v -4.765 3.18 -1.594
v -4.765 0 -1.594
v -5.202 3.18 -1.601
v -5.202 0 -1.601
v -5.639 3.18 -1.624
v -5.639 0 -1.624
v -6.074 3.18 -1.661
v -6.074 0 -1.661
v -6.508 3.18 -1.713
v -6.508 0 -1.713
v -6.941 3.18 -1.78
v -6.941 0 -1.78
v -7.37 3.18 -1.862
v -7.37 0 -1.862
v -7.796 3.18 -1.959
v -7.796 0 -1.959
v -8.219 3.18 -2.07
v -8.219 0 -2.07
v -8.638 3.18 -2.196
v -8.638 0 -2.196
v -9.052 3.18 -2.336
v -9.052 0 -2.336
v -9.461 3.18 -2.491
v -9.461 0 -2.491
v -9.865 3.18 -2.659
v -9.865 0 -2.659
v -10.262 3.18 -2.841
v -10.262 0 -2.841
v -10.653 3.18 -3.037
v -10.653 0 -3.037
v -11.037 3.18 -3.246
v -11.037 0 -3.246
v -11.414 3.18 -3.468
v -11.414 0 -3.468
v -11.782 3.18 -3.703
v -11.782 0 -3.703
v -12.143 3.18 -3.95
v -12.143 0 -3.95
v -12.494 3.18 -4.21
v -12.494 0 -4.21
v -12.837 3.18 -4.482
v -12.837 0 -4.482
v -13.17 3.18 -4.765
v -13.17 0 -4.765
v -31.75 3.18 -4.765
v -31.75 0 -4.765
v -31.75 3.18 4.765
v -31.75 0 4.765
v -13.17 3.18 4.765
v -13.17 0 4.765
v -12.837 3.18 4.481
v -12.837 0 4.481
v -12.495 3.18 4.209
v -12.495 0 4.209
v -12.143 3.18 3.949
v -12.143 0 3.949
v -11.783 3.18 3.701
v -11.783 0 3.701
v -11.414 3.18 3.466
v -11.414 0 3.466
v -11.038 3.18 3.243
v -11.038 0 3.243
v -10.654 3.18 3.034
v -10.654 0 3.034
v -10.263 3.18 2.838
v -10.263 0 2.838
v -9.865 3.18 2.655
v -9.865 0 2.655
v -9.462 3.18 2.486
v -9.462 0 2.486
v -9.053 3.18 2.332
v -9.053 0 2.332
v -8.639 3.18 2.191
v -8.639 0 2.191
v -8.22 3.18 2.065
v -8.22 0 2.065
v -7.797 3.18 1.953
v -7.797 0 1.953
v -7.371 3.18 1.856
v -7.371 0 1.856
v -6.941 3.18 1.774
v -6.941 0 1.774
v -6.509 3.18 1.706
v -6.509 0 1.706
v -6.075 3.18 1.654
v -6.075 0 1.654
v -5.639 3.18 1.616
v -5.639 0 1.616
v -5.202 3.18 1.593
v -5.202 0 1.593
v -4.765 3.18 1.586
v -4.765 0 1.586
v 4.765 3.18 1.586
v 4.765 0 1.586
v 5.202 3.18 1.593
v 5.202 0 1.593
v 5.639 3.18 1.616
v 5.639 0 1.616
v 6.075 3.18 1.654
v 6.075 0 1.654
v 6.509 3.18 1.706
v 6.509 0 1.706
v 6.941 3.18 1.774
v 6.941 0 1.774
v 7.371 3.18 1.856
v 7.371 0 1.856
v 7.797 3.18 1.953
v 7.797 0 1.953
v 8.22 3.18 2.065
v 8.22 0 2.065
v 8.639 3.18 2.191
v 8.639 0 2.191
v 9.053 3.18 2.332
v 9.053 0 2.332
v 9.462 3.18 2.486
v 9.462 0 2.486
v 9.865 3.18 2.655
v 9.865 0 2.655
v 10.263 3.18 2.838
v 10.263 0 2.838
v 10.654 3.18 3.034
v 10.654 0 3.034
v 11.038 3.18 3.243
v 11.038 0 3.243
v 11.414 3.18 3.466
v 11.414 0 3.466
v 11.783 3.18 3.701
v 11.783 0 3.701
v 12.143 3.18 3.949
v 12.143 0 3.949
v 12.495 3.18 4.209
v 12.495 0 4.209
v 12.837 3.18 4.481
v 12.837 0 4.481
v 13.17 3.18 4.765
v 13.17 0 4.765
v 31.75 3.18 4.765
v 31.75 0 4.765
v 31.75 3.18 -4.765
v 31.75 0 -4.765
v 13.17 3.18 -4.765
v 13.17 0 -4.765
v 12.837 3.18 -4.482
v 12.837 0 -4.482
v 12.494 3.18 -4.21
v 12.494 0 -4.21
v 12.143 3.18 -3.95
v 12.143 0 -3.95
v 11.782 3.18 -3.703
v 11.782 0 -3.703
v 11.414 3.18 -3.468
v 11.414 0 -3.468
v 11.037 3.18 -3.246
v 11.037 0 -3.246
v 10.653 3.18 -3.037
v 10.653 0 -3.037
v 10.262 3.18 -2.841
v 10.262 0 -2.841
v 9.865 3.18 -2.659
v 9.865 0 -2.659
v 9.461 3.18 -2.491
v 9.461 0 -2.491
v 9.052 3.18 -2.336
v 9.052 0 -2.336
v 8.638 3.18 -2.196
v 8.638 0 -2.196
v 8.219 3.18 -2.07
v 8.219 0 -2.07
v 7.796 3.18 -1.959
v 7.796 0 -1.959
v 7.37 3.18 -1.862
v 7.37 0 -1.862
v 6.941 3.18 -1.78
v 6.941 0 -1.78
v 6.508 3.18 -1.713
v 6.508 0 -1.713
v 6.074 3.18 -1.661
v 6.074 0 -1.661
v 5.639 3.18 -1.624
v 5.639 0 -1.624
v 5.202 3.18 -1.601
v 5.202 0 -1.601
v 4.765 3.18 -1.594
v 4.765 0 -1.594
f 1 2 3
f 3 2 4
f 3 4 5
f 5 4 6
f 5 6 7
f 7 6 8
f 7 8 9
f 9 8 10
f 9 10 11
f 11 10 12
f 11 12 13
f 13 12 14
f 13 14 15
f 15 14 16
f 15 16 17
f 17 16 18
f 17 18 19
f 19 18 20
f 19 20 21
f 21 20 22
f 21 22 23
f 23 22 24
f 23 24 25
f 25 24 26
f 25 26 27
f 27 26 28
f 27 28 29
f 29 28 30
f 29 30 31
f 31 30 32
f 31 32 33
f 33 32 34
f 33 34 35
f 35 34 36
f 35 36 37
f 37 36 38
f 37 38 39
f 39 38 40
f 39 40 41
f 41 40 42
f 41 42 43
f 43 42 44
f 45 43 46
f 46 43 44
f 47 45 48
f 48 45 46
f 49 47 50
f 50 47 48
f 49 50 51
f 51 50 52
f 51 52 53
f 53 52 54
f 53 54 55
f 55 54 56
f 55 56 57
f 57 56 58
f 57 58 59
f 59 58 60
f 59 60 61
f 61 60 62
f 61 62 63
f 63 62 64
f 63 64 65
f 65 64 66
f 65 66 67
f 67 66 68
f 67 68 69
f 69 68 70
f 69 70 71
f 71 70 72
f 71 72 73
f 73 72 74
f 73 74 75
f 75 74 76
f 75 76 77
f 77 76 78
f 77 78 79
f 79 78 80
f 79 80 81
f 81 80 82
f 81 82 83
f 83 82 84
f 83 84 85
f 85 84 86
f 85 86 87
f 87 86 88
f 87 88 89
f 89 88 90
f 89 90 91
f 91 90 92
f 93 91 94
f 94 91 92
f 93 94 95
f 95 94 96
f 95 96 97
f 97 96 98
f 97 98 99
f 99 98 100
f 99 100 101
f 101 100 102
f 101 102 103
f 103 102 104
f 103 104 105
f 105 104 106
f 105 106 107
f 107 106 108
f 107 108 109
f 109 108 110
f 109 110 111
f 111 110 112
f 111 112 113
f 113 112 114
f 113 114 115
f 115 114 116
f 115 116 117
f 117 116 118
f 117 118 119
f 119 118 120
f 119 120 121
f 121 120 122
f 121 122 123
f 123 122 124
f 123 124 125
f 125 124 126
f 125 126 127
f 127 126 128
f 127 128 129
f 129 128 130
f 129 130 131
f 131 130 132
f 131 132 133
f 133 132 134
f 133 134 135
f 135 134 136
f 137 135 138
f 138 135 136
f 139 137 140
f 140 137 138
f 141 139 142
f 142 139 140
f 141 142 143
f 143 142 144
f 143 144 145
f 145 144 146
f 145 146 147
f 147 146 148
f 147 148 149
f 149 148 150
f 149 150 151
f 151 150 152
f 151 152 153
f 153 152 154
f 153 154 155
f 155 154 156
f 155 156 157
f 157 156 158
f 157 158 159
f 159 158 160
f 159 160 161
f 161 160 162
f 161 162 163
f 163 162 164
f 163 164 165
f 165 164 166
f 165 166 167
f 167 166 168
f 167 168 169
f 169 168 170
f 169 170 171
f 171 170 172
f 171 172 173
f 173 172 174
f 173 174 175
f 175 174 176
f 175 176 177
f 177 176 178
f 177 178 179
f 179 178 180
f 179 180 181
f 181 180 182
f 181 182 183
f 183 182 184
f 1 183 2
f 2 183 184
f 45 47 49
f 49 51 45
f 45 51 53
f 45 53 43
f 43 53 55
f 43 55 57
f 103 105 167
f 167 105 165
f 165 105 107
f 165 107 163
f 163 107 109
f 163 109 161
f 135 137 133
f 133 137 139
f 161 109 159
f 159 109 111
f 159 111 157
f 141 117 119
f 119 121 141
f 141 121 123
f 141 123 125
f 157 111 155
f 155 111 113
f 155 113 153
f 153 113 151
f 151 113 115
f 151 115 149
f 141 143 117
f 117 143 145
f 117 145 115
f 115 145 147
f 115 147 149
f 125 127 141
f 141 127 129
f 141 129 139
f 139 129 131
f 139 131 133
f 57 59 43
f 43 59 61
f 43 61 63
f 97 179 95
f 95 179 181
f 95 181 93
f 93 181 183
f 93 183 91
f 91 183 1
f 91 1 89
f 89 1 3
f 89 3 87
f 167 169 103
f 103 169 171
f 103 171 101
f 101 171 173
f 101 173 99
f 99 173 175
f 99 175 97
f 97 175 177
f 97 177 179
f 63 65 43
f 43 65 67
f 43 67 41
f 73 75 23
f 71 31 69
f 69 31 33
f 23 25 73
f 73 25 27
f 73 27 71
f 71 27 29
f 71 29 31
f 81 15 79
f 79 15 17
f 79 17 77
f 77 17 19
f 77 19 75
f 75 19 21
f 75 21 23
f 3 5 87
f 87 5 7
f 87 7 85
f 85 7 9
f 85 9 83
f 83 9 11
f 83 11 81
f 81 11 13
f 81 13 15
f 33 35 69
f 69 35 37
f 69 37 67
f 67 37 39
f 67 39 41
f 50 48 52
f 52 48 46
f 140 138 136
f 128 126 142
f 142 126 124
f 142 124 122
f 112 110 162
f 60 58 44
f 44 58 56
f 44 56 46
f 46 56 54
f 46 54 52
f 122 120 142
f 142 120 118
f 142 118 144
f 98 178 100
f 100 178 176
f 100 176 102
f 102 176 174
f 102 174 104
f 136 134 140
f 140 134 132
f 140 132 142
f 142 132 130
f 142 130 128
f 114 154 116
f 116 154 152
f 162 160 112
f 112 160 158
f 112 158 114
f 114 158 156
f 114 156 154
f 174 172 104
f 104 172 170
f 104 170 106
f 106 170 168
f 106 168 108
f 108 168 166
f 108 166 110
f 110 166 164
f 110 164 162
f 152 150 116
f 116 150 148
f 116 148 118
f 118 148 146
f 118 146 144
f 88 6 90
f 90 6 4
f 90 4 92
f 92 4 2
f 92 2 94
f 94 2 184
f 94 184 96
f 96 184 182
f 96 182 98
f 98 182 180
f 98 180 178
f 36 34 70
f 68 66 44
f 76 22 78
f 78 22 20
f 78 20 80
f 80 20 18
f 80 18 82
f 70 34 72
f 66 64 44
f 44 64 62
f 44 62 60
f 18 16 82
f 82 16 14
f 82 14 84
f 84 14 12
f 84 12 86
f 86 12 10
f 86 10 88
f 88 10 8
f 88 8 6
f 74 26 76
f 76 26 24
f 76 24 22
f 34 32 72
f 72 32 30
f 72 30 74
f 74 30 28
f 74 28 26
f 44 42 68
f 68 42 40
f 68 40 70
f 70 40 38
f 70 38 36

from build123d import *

# Parameters (mm, degrees)
SALIENTE_EXTRUIR1_DEPTH = 3.18


with BuildPart() as part:
    # Croquis1 → Saliente-Extruir1 (new body)
    with BuildSketch(Plane(origin=(0, 0, 0), x_dir=(1, 0, 0), z_dir=(0, 1, 0))):
        with BuildLine():
            Line((-4.765, 1.59418202), (4.765, 1.59418202))
            ThreePointArc((4.765, 1.59418202), (9.257217817, 2.411625687), (13.17, 4.765))
            Line((13.17, 4.765), (31.75, 4.765))
            Line((31.75, 4.765), (31.75, -4.765))
            Line((31.75, -4.765), (13.17, -4.765))
            ThreePointArc((13.17, -4.765), (9.258084222, -2.407173521), (4.765, -1.58581798))
            Line((4.765, -1.58581798), (-4.765, -1.58581798))
            ThreePointArc((-4.765, -1.58581798), (-9.258084222, -2.407173521), (-13.17, -4.765))
            Line((-13.17, -4.765), (-31.75, -4.765))
            Line((-31.75, -4.765), (-31.75, 4.765))
            Line((-31.75, 4.765), (-13.17, 4.765))
            ThreePointArc((-13.17, 4.765), (-9.257217817, 2.411625687), (-4.765, 1.59418202))
        make_face()
    extrude(amount=SALIENTE_EXTRUIR1_DEPTH)


solid = part.part
